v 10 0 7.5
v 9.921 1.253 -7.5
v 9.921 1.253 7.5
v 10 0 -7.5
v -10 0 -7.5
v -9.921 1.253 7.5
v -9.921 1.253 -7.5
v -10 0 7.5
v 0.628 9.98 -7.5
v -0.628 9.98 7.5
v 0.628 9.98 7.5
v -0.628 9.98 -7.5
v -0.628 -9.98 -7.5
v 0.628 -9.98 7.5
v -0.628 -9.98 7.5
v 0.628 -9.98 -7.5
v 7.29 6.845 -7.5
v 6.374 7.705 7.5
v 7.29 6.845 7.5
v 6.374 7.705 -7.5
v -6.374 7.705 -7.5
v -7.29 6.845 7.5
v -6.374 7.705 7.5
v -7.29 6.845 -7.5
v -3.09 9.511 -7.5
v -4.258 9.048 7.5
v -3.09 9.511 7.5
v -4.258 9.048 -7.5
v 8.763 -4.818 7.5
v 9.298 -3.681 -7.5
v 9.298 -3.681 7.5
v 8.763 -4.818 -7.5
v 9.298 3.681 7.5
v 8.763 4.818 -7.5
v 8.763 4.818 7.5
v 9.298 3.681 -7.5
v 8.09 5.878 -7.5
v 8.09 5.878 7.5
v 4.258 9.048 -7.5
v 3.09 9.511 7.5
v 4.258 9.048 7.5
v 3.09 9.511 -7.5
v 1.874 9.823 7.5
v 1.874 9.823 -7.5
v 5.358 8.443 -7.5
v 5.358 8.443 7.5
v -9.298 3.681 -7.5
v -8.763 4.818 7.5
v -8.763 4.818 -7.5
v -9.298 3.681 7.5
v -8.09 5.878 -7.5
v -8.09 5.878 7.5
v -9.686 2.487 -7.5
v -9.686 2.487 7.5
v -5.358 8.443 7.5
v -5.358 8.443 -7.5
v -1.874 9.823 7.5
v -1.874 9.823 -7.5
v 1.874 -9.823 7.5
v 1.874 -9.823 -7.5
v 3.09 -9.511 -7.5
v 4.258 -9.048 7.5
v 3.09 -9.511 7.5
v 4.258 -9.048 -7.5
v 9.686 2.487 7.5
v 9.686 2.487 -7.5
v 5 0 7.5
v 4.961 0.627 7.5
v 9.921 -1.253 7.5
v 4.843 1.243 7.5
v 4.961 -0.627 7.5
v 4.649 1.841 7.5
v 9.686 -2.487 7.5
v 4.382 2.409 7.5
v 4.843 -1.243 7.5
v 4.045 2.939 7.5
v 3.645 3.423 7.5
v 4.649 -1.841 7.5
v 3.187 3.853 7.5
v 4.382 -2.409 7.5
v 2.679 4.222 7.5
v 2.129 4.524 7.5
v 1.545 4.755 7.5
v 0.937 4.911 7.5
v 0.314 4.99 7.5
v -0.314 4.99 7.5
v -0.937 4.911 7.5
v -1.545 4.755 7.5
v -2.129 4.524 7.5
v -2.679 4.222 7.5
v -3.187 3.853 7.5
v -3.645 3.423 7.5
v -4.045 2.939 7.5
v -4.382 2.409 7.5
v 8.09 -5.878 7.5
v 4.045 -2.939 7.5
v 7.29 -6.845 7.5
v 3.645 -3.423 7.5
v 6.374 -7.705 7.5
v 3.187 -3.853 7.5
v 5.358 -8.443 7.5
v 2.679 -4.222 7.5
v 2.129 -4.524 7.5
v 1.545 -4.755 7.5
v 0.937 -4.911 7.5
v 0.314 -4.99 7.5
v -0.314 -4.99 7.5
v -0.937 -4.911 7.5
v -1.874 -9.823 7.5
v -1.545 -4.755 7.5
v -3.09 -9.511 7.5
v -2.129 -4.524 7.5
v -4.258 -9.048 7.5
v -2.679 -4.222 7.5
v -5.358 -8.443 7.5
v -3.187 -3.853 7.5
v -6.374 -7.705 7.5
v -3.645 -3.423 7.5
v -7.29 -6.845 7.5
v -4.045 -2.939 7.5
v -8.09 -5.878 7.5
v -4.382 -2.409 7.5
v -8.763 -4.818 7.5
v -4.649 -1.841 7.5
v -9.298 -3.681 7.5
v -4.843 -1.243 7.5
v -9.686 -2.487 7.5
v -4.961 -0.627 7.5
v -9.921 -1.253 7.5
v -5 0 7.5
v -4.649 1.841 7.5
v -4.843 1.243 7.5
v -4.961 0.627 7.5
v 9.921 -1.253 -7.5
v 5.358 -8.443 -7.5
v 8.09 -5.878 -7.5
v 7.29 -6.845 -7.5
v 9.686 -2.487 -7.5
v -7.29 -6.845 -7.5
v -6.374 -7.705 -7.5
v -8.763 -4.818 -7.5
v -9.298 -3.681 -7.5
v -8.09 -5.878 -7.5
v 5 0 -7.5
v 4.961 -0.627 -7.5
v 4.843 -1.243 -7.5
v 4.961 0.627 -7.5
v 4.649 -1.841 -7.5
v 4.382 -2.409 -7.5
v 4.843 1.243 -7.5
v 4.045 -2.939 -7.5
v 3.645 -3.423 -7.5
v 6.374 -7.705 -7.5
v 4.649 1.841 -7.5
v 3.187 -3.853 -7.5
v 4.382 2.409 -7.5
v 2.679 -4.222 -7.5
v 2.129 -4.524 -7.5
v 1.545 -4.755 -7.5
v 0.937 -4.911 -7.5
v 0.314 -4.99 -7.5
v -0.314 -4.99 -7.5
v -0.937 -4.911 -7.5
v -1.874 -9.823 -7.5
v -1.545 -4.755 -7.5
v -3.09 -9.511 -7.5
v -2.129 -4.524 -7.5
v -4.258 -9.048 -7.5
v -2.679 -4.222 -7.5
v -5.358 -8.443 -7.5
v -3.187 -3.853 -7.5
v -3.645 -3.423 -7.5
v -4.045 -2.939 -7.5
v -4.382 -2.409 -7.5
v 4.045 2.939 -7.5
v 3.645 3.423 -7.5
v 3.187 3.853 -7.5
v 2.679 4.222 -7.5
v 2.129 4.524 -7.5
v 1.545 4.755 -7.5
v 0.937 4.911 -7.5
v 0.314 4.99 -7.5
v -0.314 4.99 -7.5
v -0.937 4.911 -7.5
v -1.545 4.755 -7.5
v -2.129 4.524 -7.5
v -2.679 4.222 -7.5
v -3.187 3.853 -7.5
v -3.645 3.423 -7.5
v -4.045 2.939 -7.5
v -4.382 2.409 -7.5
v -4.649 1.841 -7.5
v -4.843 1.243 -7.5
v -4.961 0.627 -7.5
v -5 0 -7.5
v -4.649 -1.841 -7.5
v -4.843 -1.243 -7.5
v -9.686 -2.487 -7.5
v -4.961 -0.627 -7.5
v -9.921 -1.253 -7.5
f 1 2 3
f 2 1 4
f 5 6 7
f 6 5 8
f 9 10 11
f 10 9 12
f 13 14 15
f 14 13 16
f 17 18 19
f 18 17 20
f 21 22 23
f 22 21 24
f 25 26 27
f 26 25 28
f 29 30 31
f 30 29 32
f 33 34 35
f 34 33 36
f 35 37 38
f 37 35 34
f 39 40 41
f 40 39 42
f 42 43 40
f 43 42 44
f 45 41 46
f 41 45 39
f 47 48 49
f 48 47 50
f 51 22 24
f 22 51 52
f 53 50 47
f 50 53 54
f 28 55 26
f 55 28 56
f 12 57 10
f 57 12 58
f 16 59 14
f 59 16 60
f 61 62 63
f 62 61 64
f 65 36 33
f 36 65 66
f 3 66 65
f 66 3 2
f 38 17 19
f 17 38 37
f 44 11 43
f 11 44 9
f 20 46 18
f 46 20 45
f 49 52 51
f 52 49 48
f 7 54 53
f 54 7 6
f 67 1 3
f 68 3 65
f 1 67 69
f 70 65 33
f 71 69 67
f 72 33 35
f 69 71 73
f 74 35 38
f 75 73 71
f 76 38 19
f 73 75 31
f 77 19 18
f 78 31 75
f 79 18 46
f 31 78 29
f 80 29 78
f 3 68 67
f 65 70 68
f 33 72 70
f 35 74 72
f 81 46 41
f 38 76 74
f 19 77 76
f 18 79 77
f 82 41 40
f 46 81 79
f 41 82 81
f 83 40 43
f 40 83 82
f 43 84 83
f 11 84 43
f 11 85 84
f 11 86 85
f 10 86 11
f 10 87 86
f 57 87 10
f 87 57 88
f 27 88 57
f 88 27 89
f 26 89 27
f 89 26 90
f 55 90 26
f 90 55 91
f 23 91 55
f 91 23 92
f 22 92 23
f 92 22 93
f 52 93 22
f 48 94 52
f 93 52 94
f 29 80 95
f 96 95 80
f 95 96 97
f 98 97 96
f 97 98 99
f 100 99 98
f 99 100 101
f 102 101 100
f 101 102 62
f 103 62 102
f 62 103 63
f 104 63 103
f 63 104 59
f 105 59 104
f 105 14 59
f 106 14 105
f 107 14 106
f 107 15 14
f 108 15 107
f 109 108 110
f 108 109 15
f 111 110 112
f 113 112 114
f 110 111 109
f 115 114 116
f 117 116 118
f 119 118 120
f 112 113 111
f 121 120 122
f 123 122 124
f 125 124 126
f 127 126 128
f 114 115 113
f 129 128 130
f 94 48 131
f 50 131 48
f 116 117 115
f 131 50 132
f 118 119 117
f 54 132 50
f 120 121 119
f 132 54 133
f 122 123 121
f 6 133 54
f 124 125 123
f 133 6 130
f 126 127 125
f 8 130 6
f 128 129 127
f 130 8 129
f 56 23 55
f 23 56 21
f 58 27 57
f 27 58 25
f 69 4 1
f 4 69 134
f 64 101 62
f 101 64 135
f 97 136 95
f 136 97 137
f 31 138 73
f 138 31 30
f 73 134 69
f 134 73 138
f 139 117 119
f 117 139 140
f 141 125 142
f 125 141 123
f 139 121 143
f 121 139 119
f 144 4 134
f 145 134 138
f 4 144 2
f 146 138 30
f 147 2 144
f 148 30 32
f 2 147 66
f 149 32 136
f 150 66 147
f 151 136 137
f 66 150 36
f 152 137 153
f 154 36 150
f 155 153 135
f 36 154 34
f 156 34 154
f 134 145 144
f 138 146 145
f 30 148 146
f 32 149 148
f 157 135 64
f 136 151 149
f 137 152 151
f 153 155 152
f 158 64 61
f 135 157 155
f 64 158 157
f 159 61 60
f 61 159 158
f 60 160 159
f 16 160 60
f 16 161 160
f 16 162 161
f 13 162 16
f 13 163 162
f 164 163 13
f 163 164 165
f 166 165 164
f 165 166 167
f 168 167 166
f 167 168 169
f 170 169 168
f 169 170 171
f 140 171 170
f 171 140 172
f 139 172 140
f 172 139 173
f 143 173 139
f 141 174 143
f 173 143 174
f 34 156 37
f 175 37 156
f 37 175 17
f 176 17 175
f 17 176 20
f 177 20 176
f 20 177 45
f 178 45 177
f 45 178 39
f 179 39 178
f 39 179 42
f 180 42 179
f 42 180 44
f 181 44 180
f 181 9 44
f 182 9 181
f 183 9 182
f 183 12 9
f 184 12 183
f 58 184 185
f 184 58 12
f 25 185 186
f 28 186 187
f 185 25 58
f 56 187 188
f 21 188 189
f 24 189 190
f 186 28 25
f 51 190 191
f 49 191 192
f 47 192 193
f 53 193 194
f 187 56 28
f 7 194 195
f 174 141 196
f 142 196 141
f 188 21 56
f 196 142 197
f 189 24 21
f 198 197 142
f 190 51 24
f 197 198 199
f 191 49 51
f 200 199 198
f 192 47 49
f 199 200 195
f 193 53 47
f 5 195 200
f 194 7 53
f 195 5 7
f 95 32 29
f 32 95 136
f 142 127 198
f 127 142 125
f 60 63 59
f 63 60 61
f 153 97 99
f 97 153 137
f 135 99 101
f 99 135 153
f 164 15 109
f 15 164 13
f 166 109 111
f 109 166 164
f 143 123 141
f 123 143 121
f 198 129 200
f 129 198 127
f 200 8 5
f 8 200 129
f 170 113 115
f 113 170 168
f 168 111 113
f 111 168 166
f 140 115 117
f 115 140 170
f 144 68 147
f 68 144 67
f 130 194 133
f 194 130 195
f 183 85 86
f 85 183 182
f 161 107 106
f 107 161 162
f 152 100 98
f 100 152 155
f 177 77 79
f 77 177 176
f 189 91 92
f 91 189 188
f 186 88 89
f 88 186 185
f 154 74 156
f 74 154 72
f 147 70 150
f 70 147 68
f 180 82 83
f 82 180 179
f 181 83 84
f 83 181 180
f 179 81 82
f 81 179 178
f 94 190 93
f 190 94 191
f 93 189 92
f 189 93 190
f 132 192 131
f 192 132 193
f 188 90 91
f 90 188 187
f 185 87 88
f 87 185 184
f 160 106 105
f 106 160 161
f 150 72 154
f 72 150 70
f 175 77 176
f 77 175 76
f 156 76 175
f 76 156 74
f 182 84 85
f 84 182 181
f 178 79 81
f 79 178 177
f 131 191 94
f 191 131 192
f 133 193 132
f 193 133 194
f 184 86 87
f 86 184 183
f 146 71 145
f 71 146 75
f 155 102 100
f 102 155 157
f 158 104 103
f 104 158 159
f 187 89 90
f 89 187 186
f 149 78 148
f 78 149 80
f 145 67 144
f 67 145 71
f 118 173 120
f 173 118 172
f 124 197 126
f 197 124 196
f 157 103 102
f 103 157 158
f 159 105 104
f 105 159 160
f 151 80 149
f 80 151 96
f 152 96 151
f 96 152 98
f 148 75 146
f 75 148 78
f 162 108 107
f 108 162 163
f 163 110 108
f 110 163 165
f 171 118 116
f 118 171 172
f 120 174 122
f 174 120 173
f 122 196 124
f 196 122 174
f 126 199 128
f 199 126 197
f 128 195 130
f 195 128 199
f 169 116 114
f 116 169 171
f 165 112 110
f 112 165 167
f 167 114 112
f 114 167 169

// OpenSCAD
$fn = 50;


difference() {
	union() {
		translate(v = [0, 0, -7.5000000000]) {
			cylinder(h = 15, r = 10.0000000000);
		}
	}
	union() {
		translate(v = [0, 0, -100.0000000000]) {
			cylinder(h = 200, r = 5.0000000000);
		}
	}
}
